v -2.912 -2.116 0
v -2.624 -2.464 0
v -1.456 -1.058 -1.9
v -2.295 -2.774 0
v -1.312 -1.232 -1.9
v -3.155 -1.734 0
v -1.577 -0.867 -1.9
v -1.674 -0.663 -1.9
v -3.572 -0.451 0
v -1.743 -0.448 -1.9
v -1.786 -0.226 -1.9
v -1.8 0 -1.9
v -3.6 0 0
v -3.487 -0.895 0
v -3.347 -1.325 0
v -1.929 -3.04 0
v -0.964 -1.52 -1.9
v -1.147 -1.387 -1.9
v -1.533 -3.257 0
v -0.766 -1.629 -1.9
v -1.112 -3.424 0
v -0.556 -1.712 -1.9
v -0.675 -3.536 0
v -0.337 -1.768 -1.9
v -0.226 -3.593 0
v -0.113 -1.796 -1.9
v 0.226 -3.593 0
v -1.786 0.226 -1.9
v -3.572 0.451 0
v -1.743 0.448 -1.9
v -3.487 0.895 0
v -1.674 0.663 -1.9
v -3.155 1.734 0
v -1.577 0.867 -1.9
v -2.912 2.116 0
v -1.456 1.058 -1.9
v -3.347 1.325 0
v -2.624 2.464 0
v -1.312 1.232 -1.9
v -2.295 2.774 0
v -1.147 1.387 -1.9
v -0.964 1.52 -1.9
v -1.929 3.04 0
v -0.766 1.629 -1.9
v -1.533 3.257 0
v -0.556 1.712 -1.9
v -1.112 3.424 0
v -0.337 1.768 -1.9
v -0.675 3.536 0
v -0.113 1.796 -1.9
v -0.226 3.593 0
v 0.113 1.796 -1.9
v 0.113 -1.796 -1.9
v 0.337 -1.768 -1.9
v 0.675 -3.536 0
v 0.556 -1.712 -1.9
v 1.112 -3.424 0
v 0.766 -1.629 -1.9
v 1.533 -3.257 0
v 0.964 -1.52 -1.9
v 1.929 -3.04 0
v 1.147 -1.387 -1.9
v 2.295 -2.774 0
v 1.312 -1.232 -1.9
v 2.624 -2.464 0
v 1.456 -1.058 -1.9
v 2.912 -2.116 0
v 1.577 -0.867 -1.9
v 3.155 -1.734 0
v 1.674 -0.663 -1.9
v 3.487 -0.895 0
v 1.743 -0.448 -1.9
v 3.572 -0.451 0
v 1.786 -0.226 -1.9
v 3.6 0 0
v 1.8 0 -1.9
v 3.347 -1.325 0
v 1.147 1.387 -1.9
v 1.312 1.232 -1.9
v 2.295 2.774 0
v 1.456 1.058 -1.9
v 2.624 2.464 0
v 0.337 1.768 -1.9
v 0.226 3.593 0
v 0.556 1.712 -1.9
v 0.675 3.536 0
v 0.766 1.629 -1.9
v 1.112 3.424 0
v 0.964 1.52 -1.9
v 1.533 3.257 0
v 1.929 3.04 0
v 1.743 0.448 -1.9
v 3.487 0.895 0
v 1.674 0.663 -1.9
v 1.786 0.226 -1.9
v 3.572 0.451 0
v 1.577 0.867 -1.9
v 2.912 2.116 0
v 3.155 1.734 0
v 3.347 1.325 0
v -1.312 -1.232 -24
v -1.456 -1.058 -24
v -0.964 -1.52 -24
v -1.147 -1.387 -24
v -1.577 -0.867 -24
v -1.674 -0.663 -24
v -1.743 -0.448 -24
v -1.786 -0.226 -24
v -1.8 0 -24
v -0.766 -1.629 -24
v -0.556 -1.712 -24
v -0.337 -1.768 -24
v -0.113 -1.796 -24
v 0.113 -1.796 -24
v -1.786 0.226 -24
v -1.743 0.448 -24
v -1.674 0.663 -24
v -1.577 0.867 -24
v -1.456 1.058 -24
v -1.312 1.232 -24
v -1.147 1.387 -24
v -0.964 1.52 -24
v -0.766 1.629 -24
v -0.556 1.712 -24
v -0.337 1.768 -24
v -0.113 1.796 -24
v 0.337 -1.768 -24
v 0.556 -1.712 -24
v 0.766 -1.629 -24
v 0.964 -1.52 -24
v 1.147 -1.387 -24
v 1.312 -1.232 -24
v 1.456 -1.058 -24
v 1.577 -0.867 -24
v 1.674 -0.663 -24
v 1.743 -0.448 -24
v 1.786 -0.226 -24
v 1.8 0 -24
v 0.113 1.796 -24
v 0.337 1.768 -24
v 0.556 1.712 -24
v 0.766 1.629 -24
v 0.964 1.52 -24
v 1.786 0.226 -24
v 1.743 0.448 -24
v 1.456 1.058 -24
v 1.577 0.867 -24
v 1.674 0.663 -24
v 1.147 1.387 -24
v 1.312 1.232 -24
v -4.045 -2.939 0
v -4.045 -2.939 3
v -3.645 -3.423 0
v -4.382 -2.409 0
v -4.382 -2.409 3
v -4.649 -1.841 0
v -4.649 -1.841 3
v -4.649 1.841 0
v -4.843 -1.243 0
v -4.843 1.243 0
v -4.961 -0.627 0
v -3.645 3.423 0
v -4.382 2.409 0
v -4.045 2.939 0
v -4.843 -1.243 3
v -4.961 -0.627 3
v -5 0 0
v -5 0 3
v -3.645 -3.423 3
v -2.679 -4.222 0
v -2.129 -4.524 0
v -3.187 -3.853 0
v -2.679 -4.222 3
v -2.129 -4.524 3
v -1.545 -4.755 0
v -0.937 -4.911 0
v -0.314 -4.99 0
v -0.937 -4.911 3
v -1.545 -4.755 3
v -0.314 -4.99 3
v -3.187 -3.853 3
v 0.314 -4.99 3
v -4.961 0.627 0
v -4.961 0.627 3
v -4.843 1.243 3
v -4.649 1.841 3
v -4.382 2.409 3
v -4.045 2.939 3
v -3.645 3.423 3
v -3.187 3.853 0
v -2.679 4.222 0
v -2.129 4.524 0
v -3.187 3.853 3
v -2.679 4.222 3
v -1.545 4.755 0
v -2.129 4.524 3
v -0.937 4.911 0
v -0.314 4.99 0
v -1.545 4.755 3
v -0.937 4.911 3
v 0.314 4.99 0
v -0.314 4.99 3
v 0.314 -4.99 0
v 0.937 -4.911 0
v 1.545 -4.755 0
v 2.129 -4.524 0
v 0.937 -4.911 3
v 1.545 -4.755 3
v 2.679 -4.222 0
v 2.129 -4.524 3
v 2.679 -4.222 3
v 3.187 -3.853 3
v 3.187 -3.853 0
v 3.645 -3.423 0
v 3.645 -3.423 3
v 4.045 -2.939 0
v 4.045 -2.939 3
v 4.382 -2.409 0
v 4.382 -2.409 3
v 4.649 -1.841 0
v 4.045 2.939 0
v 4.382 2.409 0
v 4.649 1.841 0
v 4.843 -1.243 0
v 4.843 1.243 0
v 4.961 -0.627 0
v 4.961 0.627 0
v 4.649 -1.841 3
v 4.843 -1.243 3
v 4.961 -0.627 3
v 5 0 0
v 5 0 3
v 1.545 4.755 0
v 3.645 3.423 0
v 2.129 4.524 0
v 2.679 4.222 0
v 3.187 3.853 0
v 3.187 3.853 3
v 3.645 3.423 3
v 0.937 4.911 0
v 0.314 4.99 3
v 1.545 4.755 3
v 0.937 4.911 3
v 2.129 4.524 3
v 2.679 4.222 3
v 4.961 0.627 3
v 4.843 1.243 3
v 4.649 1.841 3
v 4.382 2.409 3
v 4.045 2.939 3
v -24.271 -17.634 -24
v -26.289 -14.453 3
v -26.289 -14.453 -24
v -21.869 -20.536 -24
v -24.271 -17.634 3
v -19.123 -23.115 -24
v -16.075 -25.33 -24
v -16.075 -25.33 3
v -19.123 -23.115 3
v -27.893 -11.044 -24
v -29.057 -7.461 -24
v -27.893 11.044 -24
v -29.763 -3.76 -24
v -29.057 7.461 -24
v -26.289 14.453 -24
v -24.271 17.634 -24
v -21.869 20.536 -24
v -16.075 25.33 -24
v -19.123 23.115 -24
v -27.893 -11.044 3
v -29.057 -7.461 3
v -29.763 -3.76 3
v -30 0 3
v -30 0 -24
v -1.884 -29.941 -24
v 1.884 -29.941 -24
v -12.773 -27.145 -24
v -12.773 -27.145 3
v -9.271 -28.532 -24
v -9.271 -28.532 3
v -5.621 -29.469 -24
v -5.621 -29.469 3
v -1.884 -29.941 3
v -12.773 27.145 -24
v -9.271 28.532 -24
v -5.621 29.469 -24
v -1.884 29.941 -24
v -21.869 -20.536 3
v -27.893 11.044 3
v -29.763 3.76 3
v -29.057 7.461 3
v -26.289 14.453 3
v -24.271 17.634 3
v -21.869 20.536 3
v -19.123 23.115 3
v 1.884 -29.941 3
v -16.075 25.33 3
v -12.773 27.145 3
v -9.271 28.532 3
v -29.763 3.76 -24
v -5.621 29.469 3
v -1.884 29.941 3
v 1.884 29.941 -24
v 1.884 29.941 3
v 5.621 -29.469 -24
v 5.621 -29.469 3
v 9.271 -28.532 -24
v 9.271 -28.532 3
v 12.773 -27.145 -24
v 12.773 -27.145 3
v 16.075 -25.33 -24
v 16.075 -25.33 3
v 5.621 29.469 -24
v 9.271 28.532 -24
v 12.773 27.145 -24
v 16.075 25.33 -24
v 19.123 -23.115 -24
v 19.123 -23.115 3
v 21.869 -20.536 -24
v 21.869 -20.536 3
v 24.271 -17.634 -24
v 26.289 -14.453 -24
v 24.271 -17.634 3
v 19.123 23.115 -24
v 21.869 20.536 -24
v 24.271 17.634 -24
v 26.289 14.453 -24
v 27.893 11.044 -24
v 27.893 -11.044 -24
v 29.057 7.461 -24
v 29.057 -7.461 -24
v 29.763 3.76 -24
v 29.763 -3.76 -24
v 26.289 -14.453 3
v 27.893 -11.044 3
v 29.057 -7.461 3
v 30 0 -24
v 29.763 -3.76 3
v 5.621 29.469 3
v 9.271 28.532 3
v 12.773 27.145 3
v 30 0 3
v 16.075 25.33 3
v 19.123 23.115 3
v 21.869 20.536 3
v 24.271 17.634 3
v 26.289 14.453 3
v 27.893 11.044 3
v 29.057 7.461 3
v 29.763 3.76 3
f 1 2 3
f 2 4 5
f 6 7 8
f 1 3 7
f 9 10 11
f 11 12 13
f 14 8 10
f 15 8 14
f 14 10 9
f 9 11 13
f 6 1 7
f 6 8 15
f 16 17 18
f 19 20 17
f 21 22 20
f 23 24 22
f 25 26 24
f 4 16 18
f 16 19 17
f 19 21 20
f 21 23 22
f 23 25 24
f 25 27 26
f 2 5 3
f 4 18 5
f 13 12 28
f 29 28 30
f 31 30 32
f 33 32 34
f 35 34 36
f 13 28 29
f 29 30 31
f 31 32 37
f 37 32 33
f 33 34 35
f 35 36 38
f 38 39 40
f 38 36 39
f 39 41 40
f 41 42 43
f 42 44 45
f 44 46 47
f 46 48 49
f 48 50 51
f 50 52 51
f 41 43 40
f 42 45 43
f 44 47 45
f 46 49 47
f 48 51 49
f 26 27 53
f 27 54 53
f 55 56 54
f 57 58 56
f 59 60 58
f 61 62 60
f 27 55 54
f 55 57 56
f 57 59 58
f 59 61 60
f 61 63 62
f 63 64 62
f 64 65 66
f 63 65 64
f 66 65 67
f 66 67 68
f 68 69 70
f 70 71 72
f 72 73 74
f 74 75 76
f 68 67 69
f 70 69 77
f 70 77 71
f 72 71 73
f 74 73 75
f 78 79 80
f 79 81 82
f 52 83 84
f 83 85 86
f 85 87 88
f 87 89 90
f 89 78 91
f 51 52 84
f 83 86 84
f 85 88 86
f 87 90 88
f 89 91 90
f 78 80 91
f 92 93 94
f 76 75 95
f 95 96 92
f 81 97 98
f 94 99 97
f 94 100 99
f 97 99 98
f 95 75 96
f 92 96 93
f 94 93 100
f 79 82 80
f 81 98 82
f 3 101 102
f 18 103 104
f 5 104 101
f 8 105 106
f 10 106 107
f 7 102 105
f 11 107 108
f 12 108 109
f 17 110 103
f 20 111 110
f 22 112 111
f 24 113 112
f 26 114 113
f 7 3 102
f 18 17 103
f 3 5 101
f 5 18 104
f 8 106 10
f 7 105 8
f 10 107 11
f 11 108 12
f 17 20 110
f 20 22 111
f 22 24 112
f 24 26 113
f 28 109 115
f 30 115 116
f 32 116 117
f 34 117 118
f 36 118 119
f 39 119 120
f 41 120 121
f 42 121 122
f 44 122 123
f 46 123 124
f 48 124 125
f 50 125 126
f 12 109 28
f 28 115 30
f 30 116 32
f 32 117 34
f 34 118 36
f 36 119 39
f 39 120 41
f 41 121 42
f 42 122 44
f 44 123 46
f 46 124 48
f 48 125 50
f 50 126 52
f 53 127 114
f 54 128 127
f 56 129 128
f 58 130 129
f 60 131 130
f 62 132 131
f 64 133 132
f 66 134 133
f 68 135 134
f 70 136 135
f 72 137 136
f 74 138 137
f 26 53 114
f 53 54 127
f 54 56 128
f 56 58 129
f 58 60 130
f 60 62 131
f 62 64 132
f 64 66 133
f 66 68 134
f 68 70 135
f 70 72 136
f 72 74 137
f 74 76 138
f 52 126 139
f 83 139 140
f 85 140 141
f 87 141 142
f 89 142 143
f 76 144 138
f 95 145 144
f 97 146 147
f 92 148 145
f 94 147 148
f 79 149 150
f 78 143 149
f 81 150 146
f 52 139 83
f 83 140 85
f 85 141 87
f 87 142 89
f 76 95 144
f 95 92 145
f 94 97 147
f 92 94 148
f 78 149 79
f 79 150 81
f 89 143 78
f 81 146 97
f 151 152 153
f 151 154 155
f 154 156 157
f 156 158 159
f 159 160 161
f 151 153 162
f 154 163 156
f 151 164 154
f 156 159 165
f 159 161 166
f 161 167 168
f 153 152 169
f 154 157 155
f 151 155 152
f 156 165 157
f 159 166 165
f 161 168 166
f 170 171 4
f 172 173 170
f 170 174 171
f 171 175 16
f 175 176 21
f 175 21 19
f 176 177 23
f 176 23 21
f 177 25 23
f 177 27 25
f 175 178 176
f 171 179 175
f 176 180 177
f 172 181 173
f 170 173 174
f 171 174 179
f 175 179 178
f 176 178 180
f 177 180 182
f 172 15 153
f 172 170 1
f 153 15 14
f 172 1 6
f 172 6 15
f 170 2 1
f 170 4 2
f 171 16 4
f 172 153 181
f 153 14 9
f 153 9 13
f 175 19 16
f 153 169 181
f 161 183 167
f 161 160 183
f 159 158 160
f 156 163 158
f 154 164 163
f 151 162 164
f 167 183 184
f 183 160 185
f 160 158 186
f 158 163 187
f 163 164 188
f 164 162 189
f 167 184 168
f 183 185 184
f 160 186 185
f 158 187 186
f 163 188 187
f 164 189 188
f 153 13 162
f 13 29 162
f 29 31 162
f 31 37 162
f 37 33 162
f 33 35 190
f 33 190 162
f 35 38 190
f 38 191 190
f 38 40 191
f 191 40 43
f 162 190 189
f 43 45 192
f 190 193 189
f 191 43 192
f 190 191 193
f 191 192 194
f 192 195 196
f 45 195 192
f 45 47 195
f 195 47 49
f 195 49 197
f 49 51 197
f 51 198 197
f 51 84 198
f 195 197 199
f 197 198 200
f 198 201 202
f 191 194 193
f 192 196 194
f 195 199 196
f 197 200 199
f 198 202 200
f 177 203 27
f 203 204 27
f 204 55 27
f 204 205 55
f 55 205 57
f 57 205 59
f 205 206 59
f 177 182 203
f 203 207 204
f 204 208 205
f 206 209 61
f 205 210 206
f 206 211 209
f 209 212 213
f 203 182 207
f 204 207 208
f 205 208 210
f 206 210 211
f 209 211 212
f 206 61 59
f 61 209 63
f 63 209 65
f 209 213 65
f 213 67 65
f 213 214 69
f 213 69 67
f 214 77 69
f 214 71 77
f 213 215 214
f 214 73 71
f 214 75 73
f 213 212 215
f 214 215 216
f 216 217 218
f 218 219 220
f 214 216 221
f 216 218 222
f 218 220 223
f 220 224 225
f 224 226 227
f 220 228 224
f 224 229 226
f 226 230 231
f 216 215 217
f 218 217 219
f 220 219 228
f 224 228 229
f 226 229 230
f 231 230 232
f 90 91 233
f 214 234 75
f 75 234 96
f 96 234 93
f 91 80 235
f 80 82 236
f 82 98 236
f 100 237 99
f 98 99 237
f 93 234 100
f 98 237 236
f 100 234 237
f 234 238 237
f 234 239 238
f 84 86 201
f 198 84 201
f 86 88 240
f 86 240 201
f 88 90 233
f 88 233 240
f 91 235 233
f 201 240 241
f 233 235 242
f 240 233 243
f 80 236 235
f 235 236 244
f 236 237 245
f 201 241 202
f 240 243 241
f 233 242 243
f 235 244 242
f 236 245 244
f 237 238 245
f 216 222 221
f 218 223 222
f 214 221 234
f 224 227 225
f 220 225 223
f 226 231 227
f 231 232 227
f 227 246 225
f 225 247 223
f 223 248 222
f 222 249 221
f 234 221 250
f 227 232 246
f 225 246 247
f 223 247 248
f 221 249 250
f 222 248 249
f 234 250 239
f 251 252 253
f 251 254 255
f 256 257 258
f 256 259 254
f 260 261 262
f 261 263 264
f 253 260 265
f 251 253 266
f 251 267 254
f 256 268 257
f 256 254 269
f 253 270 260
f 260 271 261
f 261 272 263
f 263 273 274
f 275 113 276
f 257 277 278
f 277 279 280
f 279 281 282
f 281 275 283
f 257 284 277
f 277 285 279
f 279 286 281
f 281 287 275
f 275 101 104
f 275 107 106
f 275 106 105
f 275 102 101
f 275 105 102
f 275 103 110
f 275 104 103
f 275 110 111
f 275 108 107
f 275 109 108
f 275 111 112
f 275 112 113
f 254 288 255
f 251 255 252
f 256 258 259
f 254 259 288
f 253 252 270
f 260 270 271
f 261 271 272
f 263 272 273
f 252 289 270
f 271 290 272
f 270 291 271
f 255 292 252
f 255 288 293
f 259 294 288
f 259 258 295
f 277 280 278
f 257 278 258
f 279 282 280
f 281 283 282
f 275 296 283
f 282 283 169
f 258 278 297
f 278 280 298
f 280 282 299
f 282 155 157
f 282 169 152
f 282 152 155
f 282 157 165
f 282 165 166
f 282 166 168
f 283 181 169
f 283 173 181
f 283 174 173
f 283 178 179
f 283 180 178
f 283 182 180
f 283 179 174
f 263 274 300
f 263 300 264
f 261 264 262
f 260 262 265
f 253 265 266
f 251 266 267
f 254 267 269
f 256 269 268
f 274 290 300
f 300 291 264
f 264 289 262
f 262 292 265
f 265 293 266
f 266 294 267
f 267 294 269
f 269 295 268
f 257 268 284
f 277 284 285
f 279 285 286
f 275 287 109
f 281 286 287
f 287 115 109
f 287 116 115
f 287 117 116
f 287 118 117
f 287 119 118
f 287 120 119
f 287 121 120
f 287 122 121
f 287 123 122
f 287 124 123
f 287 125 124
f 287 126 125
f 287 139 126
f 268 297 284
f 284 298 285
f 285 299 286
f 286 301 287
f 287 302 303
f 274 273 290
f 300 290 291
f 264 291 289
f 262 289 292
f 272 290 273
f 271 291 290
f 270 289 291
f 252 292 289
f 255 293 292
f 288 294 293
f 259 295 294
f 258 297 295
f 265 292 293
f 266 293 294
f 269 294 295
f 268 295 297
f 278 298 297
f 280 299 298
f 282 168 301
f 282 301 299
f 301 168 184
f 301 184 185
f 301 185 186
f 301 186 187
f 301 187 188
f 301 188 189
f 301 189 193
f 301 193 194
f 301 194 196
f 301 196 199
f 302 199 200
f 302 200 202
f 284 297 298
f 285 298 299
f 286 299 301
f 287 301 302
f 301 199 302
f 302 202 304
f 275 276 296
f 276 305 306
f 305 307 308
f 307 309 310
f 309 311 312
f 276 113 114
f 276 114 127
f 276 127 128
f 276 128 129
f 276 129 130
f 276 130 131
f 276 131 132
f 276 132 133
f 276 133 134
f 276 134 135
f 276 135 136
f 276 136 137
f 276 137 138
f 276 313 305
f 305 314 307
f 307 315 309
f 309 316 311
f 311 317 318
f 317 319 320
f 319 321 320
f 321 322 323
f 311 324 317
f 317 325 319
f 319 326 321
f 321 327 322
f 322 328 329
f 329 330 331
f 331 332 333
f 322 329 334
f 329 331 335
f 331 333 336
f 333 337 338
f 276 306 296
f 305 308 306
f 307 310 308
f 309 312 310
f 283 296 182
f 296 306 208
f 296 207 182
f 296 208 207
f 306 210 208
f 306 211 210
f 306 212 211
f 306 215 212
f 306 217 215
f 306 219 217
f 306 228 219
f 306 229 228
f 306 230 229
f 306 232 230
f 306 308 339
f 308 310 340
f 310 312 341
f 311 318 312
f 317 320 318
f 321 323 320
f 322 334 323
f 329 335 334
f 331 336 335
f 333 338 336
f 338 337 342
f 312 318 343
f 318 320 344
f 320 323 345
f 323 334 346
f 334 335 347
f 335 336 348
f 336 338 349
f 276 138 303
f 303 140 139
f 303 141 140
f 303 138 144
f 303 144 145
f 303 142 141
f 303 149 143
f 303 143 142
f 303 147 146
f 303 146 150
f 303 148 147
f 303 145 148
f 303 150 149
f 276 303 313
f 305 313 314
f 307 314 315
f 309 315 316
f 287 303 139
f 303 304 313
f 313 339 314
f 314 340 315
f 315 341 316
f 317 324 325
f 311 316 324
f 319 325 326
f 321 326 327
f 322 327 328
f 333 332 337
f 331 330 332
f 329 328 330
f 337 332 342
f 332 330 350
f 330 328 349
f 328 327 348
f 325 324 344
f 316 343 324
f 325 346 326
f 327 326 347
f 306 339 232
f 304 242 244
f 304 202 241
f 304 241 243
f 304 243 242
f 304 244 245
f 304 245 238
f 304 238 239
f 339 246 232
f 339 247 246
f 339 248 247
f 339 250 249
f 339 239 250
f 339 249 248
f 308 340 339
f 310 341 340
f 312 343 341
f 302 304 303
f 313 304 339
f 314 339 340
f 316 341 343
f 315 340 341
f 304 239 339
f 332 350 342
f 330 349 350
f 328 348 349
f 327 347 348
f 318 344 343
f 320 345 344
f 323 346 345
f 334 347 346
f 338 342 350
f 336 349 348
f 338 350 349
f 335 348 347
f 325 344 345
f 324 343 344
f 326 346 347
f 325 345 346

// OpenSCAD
$fn = 50;


difference() {
	union() {
		translate(v = [0, 0, -24.0000000000]) {
			cylinder(h = 27, r = 30.0000000000);
		}
	}
	union() {
		translate(v = [0, 0, 0]) {
			rotate(a = [0, 0, 0]) {
				difference() {
					union() {
						translate(v = [0, 0, -27.0000000000]) {
							cylinder(h = 27, r = 1.5000000000);
						}
						translate(v = [0, 0, -1.9000000000]) {
							cylinder(h = 1.9000000000, r1 = 1.8000000000, r2 = 3.6000000000);
						}
						translate(v = [0, 0, -27.0000000000]) {
							cylinder(h = 27, r = 1.8000000000);
						}
						translate(v = [0, 0, -27.0000000000]) {
							cylinder(h = 27, r = 1.5000000000);
						}
					}
					union();
				}
			}
		}
		#cylinder(h = 3, r = 5.0000000000);
	}
}
